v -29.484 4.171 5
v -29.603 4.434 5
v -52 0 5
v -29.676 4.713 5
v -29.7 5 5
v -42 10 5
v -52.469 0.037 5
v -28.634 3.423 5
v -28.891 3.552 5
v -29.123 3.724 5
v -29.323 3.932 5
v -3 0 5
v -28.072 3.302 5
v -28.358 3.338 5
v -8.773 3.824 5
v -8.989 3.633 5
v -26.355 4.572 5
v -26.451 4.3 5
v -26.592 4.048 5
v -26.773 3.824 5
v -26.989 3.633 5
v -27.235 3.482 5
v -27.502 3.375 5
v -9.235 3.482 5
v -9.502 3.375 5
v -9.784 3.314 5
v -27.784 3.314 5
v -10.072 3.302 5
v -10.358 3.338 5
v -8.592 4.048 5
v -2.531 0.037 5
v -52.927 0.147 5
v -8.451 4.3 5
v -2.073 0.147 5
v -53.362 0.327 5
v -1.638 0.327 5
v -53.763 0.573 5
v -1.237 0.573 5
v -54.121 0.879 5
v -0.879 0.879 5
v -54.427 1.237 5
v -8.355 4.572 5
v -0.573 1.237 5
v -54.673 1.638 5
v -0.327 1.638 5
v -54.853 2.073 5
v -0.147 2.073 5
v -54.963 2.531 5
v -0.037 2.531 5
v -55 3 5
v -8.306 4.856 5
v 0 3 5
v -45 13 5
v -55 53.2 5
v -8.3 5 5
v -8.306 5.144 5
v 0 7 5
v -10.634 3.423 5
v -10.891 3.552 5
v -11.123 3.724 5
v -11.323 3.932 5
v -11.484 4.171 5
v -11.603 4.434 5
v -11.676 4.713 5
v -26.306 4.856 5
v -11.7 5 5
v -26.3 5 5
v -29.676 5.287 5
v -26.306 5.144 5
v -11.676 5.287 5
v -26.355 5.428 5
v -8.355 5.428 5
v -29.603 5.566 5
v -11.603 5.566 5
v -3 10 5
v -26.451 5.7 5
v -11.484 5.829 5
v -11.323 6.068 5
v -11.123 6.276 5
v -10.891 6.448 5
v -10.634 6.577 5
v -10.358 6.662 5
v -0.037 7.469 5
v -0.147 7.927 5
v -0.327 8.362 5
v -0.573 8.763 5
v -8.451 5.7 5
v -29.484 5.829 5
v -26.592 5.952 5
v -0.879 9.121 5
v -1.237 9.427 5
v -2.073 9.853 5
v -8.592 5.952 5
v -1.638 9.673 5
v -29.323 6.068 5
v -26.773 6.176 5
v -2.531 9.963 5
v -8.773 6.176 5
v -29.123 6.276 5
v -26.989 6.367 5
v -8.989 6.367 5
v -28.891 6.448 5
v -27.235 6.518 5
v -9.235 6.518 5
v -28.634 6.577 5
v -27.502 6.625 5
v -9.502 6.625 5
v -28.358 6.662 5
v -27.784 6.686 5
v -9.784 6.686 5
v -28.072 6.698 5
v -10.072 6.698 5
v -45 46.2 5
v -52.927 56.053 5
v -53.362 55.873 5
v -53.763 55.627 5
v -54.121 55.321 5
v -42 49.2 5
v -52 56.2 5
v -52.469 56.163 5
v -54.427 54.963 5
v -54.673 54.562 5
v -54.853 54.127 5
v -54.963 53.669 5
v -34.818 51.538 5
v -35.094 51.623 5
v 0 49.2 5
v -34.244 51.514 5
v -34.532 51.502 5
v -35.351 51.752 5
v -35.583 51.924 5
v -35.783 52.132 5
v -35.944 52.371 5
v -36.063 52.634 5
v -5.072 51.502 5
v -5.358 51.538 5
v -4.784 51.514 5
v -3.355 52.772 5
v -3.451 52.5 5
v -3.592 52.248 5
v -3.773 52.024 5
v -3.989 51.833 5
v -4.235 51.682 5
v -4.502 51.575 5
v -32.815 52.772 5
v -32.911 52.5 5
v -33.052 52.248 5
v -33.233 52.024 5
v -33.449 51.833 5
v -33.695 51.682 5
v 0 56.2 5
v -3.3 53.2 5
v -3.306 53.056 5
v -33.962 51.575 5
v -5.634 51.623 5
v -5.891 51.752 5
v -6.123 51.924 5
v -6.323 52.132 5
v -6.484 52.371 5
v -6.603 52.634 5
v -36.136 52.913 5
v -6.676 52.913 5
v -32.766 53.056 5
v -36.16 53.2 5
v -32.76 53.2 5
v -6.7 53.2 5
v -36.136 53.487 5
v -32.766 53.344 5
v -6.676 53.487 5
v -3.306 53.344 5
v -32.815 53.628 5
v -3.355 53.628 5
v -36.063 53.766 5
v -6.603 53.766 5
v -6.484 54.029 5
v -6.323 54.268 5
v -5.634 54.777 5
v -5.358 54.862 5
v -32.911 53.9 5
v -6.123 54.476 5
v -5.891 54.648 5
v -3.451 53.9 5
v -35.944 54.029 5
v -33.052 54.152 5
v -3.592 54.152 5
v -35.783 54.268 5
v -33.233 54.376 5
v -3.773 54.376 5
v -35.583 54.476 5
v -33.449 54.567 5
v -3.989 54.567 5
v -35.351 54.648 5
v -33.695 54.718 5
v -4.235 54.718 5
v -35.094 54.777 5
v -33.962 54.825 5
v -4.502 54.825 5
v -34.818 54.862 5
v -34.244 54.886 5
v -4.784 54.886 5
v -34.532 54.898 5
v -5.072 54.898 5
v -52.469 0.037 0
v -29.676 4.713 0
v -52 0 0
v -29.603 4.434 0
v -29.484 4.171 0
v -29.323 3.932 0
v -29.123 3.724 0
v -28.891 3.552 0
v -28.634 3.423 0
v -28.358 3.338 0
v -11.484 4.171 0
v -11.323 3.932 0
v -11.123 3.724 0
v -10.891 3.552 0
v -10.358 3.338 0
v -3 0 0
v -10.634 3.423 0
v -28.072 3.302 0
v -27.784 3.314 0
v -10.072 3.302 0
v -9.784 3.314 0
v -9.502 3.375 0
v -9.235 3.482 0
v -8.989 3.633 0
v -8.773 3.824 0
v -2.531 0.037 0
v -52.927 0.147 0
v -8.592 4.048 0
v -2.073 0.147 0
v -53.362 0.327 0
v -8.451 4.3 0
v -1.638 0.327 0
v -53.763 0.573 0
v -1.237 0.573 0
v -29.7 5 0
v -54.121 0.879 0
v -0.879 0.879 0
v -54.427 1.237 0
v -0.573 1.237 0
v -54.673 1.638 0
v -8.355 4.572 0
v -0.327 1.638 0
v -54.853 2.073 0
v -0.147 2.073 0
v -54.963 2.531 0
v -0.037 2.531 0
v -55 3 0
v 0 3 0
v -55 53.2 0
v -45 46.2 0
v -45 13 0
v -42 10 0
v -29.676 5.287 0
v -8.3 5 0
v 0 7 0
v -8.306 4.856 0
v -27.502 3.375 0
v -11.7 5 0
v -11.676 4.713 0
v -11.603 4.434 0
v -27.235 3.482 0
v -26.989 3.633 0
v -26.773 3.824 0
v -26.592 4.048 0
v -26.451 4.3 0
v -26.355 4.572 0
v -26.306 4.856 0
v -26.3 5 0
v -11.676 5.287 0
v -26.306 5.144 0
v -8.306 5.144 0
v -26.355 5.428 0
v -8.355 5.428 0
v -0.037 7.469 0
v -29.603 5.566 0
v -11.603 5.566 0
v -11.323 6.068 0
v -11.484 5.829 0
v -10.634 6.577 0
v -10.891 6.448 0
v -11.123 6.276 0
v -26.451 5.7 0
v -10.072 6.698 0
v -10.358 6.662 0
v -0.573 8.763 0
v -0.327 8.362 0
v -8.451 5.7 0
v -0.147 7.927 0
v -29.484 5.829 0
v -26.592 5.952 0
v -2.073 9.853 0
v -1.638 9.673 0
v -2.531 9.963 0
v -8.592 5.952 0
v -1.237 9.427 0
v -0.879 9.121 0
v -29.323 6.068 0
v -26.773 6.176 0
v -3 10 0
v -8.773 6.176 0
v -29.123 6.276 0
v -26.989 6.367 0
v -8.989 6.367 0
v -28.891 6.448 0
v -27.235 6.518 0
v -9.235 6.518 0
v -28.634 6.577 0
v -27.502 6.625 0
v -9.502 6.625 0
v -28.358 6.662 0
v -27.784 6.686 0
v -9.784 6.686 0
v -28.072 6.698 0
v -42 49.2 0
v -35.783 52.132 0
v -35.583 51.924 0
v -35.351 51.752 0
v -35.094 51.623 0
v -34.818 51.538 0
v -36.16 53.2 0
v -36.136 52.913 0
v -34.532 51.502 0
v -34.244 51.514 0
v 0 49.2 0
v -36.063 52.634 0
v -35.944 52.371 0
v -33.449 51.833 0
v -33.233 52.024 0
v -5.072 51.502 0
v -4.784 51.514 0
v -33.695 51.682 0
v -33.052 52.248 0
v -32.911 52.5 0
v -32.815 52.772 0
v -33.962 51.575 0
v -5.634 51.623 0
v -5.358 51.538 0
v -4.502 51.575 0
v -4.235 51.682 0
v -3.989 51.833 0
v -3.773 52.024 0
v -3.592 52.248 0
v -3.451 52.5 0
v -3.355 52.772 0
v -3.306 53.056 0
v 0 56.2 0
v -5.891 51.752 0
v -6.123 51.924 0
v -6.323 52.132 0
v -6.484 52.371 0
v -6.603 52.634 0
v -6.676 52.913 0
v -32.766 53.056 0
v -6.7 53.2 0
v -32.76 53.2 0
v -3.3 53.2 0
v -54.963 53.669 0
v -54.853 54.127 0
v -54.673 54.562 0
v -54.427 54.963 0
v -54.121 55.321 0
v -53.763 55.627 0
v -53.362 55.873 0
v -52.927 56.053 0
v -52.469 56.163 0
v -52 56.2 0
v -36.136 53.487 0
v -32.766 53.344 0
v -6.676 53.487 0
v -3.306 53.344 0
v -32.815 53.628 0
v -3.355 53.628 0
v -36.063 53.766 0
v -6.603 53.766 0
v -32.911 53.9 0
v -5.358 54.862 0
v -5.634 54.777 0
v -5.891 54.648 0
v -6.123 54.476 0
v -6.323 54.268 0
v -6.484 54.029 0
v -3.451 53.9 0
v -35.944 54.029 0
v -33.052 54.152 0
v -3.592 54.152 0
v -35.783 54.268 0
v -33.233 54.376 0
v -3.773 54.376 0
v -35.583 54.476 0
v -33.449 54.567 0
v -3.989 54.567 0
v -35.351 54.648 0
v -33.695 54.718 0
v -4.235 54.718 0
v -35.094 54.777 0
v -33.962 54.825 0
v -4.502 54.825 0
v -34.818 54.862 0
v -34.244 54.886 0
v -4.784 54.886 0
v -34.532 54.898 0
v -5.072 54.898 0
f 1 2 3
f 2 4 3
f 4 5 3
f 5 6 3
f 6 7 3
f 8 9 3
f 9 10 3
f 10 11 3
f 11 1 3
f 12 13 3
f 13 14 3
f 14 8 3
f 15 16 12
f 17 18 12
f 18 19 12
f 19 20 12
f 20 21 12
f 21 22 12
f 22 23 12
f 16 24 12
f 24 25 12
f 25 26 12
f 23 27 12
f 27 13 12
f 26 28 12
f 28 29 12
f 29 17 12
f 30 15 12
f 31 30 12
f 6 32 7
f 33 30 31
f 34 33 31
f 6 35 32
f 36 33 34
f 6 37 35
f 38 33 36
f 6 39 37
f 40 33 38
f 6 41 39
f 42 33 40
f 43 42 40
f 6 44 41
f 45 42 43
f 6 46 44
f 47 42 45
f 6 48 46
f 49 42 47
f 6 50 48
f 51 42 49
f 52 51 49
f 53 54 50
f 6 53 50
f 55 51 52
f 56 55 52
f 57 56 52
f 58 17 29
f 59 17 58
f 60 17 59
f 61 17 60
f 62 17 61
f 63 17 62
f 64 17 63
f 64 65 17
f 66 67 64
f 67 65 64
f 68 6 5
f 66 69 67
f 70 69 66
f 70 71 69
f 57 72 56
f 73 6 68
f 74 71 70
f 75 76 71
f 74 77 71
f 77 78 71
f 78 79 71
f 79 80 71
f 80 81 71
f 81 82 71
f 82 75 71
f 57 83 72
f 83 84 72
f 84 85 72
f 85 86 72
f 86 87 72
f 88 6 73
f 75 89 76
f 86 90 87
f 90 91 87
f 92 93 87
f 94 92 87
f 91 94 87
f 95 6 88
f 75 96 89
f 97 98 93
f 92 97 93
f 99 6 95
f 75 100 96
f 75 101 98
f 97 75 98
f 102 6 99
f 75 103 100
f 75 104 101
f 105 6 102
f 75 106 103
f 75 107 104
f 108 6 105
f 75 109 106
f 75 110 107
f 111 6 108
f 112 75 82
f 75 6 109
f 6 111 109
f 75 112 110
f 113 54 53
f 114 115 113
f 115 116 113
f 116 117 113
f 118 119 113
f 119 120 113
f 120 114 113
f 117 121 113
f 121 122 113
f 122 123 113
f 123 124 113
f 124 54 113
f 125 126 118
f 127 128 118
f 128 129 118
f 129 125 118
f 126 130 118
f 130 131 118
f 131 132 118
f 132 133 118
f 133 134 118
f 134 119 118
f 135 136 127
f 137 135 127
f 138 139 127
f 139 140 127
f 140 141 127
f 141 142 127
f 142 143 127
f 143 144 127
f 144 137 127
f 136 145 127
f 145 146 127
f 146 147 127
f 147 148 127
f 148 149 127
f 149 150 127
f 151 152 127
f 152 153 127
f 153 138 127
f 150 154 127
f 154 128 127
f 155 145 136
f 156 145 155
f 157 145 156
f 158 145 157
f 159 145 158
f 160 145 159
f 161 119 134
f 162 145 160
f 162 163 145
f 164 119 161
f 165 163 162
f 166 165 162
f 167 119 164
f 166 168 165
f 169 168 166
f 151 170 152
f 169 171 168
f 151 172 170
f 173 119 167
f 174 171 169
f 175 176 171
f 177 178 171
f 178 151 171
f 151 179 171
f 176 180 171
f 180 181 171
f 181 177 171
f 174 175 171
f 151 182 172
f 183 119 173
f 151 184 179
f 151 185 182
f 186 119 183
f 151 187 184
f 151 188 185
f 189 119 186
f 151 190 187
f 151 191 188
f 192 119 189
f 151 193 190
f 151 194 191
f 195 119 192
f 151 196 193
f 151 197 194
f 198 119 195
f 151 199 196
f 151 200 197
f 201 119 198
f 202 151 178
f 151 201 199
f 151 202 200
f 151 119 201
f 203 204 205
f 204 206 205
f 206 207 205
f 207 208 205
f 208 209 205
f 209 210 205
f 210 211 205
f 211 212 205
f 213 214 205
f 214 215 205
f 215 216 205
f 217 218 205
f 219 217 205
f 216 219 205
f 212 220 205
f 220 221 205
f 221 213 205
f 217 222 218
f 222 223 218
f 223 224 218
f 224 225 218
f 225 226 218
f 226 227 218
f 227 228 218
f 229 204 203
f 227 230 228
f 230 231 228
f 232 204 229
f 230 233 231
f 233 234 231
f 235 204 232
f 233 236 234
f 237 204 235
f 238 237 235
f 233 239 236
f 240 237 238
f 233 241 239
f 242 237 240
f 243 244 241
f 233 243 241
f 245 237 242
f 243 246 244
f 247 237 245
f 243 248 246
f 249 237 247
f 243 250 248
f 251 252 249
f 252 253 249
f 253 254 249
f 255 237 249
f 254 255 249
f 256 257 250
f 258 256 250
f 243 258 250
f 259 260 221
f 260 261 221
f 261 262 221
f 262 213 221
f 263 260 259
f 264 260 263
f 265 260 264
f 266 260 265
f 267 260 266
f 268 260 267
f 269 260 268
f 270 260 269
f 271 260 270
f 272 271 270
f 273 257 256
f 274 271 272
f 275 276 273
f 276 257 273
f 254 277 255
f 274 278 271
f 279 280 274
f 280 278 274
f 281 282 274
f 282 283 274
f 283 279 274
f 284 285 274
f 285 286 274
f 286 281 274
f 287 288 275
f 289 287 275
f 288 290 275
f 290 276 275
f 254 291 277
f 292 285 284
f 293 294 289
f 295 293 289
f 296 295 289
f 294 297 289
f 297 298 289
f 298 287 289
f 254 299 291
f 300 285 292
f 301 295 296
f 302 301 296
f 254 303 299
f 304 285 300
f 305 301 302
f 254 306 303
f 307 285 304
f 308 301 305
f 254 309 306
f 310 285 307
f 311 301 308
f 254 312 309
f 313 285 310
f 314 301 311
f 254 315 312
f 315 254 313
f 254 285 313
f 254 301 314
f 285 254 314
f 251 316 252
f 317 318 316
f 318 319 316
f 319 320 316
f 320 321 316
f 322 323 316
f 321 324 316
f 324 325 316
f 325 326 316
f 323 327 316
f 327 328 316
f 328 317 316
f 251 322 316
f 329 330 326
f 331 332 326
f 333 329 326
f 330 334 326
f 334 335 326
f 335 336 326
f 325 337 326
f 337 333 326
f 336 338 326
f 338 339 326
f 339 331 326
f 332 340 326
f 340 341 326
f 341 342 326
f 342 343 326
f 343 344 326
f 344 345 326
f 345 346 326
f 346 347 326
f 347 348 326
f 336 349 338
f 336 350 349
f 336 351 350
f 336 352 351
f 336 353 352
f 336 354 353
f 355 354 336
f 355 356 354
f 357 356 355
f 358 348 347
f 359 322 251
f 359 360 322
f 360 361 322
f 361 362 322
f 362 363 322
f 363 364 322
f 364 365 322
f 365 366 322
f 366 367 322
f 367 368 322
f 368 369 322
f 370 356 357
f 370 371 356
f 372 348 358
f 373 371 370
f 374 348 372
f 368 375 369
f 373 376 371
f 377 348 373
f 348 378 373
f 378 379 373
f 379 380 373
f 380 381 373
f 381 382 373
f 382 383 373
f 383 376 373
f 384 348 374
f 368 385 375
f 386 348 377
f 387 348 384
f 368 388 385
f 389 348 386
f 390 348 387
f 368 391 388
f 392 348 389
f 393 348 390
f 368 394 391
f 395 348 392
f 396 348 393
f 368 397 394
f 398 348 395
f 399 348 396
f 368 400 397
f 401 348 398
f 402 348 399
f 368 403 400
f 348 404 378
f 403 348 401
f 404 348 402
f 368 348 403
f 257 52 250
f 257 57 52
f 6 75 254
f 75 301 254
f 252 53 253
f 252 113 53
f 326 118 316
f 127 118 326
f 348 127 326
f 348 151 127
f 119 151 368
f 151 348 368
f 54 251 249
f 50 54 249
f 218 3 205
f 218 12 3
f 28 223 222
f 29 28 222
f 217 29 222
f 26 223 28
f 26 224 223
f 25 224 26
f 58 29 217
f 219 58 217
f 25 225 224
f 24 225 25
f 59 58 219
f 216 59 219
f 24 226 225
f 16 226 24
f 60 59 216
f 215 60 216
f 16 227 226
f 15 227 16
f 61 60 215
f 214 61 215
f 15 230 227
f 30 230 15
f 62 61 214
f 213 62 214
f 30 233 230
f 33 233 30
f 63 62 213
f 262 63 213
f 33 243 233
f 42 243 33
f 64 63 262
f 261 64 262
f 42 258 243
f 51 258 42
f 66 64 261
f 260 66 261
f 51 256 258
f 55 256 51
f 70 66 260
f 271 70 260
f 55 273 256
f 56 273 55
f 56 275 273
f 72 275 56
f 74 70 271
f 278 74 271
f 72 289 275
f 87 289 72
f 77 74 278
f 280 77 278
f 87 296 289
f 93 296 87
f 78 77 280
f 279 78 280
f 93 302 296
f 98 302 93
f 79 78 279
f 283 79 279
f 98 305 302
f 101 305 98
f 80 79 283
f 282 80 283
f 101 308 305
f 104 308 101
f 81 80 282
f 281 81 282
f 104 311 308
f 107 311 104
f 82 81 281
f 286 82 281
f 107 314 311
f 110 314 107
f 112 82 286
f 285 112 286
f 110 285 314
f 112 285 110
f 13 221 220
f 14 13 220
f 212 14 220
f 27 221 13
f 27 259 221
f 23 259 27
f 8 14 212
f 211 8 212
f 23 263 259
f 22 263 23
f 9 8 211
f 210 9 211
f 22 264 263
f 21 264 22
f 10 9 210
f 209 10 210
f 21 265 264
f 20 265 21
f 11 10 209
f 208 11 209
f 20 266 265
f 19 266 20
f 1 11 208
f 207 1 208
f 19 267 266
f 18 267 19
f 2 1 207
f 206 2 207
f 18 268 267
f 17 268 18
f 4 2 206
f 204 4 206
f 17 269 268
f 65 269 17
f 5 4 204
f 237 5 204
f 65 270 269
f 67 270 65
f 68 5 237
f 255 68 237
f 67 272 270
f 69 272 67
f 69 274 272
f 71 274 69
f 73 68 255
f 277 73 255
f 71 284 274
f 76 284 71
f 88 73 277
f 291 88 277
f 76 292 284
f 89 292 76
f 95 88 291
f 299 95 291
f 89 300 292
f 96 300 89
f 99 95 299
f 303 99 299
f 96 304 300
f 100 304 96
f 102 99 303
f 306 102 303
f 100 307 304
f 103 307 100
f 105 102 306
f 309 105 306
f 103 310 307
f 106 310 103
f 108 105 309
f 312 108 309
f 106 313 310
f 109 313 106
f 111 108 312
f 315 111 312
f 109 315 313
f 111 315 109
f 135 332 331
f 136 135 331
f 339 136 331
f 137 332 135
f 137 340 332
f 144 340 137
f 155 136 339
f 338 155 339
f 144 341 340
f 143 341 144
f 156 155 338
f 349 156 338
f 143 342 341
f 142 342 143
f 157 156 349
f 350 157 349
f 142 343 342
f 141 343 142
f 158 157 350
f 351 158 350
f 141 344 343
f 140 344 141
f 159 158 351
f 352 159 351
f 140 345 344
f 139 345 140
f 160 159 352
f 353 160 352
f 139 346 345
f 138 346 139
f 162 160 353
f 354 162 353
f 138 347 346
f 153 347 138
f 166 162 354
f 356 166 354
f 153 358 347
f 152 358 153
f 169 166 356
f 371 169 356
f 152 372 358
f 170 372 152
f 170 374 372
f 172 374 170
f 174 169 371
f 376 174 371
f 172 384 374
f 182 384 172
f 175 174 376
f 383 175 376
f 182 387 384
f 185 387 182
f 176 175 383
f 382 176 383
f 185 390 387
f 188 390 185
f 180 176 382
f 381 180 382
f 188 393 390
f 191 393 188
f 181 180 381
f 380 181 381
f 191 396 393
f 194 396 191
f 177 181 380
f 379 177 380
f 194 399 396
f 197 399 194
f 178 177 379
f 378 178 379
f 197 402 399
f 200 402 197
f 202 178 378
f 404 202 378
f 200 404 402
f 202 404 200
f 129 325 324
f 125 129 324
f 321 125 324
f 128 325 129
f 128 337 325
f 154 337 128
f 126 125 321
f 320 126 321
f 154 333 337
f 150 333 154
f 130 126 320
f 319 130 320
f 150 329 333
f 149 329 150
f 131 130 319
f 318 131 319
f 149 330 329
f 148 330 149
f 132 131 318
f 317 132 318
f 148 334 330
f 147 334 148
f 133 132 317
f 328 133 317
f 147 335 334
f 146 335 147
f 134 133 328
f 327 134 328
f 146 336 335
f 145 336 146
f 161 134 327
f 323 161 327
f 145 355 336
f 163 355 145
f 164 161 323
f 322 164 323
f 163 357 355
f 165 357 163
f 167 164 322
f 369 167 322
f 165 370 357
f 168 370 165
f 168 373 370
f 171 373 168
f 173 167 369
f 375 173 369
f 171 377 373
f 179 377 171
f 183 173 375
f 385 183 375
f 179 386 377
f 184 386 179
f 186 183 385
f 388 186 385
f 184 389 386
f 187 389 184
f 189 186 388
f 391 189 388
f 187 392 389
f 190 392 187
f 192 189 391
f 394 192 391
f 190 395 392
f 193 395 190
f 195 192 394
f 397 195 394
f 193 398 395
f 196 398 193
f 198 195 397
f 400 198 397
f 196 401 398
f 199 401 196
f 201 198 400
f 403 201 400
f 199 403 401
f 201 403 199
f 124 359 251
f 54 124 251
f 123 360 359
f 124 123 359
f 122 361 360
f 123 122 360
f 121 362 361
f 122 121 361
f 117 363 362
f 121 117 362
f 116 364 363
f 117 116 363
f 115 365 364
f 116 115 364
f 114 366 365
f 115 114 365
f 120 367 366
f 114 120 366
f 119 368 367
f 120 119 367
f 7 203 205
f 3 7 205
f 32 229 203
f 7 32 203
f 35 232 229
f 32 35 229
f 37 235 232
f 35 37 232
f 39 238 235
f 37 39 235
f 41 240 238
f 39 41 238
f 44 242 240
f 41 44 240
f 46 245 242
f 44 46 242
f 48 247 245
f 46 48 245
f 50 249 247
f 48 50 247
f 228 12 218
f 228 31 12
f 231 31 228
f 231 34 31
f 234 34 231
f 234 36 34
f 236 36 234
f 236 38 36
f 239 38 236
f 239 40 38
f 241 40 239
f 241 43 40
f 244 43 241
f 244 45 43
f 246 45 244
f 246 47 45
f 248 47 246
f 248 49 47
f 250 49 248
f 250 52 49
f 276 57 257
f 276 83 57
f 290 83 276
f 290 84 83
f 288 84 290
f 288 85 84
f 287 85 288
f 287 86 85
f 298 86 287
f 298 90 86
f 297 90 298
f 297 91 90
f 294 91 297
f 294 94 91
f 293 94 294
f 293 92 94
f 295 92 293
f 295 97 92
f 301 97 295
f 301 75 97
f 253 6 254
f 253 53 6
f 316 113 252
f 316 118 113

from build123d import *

# Parameters (mm, degrees)
SKETCH_1_R      = 1.7
EXTRUDE_1_DEPTH = 5
FILLET_1_R      = 3
CHAMFER_1_SIZE  = 3


with BuildPart() as part:
    # 草图1 → 凸台-拉伸1 (new body)
    with BuildSketch(Plane.XY):
        Polygon((0, 0), (-55, 0), (-55, 56.2), (0, 56.2), (0, 49.2), (-45, 49.2), (-45, 10), (0, 10), align=None)
        with Locations((-10, 5)):
            Circle(SKETCH_1_R, mode=Mode.SUBTRACT)
        with Locations((-28, 5)):
            Circle(SKETCH_1_R, mode=Mode.SUBTRACT)
        with Locations((-5, 53.2)):
            Circle(SKETCH_1_R, mode=Mode.SUBTRACT)
        with Locations((-34.46, 53.2)):
            Circle(SKETCH_1_R, mode=Mode.SUBTRACT)
    extrude(amount=EXTRUDE_1_DEPTH)

    # 圆角1
    fillet_1_edges = [part.edges().sort_by_distance(p)[0] for p in [
        (0, 0, 2.5),
        (-55, 0, 2.5),
        (-55, 56.2, 2.5),
        (0, 10, 2.5),
    ]]
    fillet(fillet_1_edges, radius=FILLET_1_R)

    # 倒角1
    chamfer_1_edges = [part.edges().sort_by_distance(p)[0] for p in [
        (-45, 49.2, 2.5),
        (-45, 10, 2.5),
    ]]
    chamfer(chamfer_1_edges, length=CHAMFER_1_SIZE)


solid = part.part
